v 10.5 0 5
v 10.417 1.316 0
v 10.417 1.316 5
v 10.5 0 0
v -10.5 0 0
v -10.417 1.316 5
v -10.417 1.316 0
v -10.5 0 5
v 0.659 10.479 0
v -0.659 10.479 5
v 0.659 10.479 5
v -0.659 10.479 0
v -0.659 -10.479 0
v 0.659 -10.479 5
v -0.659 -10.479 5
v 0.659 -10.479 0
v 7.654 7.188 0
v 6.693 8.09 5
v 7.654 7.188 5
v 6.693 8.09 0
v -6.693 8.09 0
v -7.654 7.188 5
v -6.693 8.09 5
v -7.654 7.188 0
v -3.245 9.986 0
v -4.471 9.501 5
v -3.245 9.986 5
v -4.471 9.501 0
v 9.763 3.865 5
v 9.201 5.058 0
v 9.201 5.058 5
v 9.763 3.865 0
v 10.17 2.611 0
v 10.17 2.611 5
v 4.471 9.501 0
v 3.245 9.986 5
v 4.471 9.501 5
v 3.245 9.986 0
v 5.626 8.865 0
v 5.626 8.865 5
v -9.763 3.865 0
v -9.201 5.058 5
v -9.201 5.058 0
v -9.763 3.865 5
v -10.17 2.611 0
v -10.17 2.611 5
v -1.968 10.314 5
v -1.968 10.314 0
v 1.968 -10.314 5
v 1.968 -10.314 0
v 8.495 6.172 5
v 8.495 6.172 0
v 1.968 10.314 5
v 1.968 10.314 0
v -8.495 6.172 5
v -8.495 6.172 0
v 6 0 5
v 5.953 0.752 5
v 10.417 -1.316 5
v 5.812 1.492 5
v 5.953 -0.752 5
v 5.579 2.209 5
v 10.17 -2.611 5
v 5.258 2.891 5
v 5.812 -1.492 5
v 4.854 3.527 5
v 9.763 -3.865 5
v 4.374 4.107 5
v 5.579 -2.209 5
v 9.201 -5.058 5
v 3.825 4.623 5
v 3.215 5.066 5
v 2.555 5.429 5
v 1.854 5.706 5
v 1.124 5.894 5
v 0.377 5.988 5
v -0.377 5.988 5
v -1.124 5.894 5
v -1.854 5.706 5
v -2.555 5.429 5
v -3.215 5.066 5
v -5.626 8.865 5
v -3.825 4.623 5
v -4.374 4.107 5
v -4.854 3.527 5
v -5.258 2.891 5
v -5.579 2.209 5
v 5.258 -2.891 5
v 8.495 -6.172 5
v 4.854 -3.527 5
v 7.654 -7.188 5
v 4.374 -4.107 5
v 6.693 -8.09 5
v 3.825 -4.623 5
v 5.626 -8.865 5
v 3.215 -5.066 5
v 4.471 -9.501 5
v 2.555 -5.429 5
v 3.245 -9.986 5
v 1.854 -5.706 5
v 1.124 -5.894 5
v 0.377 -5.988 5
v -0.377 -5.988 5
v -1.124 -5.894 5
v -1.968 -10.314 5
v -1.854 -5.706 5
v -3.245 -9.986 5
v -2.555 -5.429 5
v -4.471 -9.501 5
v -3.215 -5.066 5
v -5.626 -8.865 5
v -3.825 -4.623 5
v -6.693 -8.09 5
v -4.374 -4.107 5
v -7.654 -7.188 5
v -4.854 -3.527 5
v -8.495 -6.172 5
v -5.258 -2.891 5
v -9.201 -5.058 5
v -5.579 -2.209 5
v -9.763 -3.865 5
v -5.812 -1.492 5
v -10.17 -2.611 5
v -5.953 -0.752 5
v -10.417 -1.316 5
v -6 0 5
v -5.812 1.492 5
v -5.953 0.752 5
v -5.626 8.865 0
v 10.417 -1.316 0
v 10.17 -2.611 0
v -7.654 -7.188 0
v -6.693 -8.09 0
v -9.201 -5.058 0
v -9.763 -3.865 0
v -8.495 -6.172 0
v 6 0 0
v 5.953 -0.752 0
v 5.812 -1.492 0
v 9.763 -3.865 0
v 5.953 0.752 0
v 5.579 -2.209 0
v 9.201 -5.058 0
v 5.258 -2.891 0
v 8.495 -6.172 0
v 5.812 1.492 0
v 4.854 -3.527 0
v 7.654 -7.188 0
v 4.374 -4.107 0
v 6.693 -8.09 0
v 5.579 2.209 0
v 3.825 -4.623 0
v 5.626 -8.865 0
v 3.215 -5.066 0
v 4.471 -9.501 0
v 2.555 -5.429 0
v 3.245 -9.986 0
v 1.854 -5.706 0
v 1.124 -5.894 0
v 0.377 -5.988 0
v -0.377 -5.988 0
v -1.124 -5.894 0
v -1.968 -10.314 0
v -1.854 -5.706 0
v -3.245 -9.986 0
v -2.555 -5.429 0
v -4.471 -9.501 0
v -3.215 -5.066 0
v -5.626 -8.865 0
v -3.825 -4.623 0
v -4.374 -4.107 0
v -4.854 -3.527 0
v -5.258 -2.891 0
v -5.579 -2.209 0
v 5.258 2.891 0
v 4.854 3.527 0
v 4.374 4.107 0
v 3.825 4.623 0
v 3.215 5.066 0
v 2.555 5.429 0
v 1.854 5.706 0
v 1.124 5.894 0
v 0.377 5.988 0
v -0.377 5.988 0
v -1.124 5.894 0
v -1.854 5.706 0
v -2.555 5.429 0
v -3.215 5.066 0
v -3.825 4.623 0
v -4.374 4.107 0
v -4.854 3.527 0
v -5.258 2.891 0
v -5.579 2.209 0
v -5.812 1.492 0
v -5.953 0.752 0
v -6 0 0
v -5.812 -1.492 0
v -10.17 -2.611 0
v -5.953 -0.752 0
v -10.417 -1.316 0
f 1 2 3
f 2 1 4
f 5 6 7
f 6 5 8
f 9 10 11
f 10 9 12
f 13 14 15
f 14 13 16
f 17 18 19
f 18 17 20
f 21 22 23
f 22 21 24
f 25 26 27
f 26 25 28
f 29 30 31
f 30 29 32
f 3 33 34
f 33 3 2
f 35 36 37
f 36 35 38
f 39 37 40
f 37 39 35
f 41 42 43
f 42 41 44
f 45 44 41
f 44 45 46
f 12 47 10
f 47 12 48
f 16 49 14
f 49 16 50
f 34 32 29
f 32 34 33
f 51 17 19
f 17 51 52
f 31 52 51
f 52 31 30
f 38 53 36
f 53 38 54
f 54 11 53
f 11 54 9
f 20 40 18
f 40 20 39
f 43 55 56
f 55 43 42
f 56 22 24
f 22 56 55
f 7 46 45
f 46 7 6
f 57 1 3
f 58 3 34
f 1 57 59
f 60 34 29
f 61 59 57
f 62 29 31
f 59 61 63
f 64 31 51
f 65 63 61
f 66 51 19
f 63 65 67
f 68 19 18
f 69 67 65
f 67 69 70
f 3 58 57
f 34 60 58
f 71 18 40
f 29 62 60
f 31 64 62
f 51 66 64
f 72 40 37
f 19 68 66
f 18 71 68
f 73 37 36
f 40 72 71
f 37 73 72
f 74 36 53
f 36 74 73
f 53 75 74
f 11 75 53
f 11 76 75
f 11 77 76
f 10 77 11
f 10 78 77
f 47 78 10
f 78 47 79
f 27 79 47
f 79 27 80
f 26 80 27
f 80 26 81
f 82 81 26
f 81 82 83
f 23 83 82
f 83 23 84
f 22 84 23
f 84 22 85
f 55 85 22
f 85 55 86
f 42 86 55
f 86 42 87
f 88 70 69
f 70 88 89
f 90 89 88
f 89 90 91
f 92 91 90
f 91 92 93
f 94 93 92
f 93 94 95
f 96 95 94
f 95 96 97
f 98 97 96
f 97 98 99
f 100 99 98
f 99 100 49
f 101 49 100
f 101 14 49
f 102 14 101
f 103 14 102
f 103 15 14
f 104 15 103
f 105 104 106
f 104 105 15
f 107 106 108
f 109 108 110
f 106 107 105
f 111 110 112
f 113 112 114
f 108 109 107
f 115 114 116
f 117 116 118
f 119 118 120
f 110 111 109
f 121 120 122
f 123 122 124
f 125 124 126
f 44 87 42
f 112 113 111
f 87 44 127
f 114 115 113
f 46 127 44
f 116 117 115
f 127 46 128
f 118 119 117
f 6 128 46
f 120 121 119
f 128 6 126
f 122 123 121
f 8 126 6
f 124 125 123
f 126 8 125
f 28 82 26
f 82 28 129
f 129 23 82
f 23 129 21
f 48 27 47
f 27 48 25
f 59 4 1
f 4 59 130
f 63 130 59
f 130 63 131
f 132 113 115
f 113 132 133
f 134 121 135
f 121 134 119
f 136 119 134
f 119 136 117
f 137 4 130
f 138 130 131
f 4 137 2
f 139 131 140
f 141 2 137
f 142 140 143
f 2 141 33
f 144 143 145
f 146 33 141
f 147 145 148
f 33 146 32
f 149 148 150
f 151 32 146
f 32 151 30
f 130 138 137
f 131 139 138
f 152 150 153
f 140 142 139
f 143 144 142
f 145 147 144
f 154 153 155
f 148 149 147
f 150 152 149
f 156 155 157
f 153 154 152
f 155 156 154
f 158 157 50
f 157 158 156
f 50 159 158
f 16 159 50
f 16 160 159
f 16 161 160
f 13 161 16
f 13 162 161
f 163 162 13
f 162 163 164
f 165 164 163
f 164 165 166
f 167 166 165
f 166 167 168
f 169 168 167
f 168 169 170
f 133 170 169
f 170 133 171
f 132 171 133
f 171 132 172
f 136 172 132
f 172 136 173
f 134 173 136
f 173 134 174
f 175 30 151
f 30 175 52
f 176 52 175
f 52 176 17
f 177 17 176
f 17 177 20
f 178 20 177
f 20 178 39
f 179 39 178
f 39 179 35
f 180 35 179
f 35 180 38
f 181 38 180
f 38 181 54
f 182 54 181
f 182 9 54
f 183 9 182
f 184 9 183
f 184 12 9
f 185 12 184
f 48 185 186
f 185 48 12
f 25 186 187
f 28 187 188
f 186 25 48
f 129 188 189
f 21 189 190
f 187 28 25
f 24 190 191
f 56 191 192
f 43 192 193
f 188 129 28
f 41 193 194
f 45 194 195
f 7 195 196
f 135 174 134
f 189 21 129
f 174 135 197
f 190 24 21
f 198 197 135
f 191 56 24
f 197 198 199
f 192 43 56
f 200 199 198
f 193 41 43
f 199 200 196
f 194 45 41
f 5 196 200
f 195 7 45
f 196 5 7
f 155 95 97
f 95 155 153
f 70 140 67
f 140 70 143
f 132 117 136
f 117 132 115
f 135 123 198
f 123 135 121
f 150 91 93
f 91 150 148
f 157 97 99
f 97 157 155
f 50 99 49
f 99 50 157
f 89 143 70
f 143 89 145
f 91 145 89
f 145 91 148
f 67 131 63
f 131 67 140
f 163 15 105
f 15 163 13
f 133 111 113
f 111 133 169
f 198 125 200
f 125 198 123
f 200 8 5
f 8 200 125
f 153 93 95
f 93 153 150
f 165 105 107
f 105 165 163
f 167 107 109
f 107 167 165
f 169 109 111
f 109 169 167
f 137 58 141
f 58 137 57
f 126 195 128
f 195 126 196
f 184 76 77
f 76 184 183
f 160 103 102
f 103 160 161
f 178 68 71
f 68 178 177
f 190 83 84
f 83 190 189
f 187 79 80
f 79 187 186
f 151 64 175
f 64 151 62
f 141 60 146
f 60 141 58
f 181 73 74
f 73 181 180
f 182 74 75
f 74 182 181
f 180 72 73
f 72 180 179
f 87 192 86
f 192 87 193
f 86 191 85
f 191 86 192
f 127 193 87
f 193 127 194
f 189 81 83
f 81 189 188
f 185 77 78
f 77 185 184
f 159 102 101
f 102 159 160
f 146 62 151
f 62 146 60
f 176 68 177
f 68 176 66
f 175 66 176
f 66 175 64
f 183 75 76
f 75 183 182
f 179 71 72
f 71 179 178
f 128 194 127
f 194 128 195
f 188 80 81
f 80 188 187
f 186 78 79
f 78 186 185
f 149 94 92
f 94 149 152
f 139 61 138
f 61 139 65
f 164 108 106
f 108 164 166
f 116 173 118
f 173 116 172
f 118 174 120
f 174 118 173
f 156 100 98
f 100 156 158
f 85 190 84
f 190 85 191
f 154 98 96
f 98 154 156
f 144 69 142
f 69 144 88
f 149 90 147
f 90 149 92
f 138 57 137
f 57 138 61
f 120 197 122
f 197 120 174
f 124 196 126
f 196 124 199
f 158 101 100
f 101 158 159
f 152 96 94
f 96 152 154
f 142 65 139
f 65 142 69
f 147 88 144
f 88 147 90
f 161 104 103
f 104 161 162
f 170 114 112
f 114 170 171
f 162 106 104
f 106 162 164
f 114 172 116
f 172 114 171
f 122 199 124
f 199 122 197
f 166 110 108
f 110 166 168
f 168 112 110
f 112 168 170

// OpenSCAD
$fn = 50;


difference() {
	union() {
		translate(v = [0, 0, 0]) {
			rotate(a = [0, 0, 0]) {
				cylinder(h = 5, r = 10.5000000000);
			}
		}
	}
	union() {
		translate(v = [0, 0, 0]) {
			rotate(a = [0, 0, 0]) {
				cylinder(h = 5, r = 6.0000000000);
			}
		}
	}
}
